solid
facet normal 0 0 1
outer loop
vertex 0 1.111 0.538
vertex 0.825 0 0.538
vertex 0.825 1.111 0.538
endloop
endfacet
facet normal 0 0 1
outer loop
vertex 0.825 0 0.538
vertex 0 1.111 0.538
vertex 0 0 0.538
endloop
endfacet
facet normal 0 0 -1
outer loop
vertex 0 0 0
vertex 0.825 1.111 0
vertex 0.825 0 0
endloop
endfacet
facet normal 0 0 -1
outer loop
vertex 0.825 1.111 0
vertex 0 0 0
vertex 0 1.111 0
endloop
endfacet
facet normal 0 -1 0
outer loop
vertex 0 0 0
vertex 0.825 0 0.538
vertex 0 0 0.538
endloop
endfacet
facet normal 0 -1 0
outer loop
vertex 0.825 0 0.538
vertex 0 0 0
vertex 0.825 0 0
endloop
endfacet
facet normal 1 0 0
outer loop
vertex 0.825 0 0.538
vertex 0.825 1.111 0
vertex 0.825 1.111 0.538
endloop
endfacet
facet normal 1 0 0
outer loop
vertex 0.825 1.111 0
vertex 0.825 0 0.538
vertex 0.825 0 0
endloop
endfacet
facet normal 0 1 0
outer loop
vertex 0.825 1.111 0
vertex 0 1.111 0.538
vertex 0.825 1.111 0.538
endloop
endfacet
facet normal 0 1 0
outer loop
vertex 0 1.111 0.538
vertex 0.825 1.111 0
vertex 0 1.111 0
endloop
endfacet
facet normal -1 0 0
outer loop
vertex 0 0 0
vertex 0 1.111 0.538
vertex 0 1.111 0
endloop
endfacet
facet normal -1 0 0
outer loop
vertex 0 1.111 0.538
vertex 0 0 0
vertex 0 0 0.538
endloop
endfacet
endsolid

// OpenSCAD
/* Warning, this is a very basic generator with a lot of approximation 
input data : [WLCSP, EHB, 0.825x1.111x0.538mm, 4, , A, C04-21207A]
generated by com.zoubworld.electronics.cad.model3d.Basic
Date : Sun Feb 15 10:50:49 CET 2026
*/

//body
color("black")
translate([0,0,0])
cube([0.825,1.111,0.538], center=false);
